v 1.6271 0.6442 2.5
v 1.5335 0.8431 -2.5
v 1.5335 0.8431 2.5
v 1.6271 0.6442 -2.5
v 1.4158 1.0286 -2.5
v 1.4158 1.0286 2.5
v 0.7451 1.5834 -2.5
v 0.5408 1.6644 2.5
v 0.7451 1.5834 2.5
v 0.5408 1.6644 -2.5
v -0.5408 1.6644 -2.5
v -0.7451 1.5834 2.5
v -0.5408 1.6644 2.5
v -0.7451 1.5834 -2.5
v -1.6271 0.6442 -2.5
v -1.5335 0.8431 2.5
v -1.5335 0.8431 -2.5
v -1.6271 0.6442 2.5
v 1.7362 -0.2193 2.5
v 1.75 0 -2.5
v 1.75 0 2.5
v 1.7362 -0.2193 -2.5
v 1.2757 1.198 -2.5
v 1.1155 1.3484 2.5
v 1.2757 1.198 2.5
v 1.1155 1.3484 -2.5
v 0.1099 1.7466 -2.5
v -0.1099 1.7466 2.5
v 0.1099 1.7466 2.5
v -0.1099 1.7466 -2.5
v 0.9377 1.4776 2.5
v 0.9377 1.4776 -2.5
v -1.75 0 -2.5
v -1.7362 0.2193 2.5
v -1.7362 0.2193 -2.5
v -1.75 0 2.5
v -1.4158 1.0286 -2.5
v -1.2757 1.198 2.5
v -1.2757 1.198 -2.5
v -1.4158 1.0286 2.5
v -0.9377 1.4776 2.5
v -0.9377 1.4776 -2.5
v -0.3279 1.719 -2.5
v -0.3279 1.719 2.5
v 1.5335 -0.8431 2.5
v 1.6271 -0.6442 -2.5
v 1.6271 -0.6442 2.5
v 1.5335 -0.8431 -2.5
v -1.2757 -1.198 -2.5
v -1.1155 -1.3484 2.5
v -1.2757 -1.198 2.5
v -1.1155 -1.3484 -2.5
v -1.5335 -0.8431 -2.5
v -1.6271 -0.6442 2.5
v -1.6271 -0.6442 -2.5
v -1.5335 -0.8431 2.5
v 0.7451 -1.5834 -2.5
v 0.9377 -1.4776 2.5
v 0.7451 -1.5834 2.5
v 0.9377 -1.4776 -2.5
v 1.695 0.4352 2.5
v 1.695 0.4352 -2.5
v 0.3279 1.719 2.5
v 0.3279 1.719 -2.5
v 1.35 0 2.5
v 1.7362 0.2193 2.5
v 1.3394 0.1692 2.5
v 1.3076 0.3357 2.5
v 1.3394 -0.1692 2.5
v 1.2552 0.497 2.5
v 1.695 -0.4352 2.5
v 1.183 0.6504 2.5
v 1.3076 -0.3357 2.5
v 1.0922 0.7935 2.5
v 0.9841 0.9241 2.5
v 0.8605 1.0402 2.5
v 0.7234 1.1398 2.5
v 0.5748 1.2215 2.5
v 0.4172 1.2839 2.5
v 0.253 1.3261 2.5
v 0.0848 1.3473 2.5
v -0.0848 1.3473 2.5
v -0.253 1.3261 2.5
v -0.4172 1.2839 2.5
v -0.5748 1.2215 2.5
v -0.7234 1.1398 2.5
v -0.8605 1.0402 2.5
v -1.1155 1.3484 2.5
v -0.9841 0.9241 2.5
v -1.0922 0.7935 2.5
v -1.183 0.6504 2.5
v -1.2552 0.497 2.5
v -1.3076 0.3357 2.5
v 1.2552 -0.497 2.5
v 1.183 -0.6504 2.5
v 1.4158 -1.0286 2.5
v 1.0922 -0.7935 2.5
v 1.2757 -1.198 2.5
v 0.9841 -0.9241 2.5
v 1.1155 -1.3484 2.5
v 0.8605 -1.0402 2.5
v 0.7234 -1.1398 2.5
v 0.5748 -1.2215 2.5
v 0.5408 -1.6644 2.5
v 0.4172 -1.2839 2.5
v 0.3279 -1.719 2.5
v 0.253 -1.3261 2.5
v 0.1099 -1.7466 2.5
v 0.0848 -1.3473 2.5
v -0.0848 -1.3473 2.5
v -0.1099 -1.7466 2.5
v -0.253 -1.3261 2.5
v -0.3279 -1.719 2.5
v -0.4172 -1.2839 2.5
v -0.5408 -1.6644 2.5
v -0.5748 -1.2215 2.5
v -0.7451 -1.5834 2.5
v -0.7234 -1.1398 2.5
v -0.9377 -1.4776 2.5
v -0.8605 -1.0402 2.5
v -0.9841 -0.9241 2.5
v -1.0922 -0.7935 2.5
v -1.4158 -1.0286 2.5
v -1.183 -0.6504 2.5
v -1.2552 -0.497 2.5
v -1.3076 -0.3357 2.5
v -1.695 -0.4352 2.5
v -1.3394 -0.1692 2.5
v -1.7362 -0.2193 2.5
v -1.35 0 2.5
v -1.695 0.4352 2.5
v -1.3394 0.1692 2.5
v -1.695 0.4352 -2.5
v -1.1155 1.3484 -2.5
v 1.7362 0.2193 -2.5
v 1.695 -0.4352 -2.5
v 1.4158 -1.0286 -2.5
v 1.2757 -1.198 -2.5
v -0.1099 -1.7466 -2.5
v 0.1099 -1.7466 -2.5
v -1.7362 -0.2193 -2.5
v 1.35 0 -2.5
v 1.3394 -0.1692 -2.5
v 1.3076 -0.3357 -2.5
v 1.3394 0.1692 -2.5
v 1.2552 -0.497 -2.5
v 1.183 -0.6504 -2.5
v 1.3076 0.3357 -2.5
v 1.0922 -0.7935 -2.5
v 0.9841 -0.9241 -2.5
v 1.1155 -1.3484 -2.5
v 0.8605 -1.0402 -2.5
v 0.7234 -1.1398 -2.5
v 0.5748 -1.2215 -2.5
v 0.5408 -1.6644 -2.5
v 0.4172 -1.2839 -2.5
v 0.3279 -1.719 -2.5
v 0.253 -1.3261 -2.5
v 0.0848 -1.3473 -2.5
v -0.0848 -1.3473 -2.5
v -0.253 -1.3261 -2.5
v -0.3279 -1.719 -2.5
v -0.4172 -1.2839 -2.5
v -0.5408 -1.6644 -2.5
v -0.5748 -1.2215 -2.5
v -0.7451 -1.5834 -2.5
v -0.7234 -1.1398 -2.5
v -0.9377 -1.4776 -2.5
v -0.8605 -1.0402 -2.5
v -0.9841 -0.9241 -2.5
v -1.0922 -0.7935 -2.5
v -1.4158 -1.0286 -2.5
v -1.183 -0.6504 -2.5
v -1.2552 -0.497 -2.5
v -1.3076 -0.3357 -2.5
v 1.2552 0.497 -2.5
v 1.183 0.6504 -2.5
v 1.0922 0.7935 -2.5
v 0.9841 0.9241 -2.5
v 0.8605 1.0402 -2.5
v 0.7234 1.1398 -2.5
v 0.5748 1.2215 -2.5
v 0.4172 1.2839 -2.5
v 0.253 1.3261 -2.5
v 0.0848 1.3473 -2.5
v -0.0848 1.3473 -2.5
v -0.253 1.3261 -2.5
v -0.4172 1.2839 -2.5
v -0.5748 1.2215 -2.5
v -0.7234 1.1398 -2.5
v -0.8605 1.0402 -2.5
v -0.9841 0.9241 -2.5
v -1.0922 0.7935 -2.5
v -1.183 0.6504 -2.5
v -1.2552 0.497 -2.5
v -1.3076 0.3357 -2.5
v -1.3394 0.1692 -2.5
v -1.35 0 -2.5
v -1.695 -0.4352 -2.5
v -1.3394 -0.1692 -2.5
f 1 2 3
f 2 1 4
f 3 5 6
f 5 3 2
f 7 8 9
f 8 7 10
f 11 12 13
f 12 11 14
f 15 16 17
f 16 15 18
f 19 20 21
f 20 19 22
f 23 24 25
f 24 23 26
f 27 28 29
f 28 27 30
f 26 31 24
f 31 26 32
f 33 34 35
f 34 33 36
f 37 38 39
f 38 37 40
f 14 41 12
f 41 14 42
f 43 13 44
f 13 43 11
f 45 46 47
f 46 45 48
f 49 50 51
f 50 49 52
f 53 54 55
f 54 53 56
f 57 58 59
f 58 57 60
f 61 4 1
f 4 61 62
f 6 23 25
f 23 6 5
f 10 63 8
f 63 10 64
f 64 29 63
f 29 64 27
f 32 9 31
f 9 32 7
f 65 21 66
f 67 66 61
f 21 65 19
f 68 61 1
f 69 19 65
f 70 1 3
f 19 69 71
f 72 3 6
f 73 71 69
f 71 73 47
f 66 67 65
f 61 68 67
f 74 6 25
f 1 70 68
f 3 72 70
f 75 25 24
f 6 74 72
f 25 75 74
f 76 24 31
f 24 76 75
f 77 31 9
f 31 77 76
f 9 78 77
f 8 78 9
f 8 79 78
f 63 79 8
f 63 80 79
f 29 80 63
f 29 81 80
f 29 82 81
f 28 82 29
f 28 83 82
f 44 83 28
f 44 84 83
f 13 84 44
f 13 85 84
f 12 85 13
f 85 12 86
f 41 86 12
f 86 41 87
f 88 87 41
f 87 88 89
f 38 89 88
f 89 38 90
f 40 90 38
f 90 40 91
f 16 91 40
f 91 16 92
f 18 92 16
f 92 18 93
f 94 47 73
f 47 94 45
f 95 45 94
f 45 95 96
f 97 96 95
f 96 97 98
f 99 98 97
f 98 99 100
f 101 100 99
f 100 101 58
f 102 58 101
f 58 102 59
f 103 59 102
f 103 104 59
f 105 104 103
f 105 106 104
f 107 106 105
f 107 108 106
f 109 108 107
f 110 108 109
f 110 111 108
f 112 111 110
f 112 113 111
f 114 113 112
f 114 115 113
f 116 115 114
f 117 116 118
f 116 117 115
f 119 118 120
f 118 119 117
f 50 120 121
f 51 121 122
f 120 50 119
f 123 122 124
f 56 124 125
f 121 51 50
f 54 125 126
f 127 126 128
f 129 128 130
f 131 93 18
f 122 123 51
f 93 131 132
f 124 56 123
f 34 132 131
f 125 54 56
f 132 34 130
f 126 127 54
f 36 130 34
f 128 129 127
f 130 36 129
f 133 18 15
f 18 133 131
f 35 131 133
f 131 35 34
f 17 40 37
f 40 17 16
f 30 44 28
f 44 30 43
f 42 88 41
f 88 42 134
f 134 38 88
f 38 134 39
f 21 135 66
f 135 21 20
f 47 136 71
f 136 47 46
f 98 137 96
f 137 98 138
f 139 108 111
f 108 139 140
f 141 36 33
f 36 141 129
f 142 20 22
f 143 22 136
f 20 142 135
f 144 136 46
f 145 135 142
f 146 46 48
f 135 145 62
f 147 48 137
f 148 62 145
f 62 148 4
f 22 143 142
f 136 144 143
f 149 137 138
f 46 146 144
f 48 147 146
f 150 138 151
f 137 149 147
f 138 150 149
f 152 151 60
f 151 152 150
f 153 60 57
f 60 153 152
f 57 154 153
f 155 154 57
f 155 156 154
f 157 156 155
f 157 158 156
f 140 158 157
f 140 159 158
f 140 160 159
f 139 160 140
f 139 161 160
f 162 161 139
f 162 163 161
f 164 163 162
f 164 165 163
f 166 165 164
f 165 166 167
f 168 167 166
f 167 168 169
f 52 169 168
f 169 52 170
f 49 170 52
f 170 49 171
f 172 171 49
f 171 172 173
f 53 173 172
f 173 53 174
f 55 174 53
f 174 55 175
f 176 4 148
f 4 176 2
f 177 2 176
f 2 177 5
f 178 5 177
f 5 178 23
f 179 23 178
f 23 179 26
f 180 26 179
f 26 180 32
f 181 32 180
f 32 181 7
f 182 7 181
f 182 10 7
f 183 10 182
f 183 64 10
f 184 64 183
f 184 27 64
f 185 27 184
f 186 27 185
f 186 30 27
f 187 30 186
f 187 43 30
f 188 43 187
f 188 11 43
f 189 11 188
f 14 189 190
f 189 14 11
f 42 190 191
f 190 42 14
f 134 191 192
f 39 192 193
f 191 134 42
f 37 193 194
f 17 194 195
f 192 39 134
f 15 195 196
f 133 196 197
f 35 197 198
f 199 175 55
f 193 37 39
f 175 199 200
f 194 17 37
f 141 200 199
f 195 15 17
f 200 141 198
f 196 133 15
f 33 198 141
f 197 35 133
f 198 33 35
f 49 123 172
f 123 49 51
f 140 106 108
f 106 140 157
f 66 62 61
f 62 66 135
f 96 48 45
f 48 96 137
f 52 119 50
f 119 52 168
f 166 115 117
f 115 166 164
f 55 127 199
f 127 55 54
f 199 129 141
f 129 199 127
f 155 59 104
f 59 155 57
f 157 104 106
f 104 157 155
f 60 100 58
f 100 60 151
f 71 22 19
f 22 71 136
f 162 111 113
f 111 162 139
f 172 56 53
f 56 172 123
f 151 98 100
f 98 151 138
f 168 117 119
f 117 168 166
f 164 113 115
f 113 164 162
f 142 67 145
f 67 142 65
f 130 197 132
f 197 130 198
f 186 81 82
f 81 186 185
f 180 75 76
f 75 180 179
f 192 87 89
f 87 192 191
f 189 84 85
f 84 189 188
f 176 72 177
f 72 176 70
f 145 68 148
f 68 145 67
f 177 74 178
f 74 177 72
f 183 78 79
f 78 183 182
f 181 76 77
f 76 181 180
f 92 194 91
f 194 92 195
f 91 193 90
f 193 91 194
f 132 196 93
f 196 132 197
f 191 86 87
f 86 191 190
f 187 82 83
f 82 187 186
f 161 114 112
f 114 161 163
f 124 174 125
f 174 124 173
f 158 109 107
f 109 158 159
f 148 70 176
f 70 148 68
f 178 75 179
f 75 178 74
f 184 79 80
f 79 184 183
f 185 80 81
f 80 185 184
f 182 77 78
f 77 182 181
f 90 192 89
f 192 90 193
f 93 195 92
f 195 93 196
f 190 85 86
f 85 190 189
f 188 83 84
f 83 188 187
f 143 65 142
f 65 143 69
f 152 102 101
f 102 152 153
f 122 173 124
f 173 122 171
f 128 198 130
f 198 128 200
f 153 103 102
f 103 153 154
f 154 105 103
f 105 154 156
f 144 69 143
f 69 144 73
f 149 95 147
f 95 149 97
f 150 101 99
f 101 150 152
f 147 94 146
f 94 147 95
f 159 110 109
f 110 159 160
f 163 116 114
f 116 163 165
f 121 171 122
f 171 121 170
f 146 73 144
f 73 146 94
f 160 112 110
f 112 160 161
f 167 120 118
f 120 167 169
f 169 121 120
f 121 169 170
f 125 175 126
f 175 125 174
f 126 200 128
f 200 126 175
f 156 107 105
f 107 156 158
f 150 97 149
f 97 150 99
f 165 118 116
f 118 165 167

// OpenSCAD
$fn = 50;


difference() {
	union() {
		translate(v = [0, 0, -2.5000000000]) {
			cylinder(h = 5, r = 1.7500000000);
		}
	}
	union() {
		translate(v = [0, 0, -100.0000000000]) {
			cylinder(h = 200, r = 1.3500000000);
		}
	}
}
